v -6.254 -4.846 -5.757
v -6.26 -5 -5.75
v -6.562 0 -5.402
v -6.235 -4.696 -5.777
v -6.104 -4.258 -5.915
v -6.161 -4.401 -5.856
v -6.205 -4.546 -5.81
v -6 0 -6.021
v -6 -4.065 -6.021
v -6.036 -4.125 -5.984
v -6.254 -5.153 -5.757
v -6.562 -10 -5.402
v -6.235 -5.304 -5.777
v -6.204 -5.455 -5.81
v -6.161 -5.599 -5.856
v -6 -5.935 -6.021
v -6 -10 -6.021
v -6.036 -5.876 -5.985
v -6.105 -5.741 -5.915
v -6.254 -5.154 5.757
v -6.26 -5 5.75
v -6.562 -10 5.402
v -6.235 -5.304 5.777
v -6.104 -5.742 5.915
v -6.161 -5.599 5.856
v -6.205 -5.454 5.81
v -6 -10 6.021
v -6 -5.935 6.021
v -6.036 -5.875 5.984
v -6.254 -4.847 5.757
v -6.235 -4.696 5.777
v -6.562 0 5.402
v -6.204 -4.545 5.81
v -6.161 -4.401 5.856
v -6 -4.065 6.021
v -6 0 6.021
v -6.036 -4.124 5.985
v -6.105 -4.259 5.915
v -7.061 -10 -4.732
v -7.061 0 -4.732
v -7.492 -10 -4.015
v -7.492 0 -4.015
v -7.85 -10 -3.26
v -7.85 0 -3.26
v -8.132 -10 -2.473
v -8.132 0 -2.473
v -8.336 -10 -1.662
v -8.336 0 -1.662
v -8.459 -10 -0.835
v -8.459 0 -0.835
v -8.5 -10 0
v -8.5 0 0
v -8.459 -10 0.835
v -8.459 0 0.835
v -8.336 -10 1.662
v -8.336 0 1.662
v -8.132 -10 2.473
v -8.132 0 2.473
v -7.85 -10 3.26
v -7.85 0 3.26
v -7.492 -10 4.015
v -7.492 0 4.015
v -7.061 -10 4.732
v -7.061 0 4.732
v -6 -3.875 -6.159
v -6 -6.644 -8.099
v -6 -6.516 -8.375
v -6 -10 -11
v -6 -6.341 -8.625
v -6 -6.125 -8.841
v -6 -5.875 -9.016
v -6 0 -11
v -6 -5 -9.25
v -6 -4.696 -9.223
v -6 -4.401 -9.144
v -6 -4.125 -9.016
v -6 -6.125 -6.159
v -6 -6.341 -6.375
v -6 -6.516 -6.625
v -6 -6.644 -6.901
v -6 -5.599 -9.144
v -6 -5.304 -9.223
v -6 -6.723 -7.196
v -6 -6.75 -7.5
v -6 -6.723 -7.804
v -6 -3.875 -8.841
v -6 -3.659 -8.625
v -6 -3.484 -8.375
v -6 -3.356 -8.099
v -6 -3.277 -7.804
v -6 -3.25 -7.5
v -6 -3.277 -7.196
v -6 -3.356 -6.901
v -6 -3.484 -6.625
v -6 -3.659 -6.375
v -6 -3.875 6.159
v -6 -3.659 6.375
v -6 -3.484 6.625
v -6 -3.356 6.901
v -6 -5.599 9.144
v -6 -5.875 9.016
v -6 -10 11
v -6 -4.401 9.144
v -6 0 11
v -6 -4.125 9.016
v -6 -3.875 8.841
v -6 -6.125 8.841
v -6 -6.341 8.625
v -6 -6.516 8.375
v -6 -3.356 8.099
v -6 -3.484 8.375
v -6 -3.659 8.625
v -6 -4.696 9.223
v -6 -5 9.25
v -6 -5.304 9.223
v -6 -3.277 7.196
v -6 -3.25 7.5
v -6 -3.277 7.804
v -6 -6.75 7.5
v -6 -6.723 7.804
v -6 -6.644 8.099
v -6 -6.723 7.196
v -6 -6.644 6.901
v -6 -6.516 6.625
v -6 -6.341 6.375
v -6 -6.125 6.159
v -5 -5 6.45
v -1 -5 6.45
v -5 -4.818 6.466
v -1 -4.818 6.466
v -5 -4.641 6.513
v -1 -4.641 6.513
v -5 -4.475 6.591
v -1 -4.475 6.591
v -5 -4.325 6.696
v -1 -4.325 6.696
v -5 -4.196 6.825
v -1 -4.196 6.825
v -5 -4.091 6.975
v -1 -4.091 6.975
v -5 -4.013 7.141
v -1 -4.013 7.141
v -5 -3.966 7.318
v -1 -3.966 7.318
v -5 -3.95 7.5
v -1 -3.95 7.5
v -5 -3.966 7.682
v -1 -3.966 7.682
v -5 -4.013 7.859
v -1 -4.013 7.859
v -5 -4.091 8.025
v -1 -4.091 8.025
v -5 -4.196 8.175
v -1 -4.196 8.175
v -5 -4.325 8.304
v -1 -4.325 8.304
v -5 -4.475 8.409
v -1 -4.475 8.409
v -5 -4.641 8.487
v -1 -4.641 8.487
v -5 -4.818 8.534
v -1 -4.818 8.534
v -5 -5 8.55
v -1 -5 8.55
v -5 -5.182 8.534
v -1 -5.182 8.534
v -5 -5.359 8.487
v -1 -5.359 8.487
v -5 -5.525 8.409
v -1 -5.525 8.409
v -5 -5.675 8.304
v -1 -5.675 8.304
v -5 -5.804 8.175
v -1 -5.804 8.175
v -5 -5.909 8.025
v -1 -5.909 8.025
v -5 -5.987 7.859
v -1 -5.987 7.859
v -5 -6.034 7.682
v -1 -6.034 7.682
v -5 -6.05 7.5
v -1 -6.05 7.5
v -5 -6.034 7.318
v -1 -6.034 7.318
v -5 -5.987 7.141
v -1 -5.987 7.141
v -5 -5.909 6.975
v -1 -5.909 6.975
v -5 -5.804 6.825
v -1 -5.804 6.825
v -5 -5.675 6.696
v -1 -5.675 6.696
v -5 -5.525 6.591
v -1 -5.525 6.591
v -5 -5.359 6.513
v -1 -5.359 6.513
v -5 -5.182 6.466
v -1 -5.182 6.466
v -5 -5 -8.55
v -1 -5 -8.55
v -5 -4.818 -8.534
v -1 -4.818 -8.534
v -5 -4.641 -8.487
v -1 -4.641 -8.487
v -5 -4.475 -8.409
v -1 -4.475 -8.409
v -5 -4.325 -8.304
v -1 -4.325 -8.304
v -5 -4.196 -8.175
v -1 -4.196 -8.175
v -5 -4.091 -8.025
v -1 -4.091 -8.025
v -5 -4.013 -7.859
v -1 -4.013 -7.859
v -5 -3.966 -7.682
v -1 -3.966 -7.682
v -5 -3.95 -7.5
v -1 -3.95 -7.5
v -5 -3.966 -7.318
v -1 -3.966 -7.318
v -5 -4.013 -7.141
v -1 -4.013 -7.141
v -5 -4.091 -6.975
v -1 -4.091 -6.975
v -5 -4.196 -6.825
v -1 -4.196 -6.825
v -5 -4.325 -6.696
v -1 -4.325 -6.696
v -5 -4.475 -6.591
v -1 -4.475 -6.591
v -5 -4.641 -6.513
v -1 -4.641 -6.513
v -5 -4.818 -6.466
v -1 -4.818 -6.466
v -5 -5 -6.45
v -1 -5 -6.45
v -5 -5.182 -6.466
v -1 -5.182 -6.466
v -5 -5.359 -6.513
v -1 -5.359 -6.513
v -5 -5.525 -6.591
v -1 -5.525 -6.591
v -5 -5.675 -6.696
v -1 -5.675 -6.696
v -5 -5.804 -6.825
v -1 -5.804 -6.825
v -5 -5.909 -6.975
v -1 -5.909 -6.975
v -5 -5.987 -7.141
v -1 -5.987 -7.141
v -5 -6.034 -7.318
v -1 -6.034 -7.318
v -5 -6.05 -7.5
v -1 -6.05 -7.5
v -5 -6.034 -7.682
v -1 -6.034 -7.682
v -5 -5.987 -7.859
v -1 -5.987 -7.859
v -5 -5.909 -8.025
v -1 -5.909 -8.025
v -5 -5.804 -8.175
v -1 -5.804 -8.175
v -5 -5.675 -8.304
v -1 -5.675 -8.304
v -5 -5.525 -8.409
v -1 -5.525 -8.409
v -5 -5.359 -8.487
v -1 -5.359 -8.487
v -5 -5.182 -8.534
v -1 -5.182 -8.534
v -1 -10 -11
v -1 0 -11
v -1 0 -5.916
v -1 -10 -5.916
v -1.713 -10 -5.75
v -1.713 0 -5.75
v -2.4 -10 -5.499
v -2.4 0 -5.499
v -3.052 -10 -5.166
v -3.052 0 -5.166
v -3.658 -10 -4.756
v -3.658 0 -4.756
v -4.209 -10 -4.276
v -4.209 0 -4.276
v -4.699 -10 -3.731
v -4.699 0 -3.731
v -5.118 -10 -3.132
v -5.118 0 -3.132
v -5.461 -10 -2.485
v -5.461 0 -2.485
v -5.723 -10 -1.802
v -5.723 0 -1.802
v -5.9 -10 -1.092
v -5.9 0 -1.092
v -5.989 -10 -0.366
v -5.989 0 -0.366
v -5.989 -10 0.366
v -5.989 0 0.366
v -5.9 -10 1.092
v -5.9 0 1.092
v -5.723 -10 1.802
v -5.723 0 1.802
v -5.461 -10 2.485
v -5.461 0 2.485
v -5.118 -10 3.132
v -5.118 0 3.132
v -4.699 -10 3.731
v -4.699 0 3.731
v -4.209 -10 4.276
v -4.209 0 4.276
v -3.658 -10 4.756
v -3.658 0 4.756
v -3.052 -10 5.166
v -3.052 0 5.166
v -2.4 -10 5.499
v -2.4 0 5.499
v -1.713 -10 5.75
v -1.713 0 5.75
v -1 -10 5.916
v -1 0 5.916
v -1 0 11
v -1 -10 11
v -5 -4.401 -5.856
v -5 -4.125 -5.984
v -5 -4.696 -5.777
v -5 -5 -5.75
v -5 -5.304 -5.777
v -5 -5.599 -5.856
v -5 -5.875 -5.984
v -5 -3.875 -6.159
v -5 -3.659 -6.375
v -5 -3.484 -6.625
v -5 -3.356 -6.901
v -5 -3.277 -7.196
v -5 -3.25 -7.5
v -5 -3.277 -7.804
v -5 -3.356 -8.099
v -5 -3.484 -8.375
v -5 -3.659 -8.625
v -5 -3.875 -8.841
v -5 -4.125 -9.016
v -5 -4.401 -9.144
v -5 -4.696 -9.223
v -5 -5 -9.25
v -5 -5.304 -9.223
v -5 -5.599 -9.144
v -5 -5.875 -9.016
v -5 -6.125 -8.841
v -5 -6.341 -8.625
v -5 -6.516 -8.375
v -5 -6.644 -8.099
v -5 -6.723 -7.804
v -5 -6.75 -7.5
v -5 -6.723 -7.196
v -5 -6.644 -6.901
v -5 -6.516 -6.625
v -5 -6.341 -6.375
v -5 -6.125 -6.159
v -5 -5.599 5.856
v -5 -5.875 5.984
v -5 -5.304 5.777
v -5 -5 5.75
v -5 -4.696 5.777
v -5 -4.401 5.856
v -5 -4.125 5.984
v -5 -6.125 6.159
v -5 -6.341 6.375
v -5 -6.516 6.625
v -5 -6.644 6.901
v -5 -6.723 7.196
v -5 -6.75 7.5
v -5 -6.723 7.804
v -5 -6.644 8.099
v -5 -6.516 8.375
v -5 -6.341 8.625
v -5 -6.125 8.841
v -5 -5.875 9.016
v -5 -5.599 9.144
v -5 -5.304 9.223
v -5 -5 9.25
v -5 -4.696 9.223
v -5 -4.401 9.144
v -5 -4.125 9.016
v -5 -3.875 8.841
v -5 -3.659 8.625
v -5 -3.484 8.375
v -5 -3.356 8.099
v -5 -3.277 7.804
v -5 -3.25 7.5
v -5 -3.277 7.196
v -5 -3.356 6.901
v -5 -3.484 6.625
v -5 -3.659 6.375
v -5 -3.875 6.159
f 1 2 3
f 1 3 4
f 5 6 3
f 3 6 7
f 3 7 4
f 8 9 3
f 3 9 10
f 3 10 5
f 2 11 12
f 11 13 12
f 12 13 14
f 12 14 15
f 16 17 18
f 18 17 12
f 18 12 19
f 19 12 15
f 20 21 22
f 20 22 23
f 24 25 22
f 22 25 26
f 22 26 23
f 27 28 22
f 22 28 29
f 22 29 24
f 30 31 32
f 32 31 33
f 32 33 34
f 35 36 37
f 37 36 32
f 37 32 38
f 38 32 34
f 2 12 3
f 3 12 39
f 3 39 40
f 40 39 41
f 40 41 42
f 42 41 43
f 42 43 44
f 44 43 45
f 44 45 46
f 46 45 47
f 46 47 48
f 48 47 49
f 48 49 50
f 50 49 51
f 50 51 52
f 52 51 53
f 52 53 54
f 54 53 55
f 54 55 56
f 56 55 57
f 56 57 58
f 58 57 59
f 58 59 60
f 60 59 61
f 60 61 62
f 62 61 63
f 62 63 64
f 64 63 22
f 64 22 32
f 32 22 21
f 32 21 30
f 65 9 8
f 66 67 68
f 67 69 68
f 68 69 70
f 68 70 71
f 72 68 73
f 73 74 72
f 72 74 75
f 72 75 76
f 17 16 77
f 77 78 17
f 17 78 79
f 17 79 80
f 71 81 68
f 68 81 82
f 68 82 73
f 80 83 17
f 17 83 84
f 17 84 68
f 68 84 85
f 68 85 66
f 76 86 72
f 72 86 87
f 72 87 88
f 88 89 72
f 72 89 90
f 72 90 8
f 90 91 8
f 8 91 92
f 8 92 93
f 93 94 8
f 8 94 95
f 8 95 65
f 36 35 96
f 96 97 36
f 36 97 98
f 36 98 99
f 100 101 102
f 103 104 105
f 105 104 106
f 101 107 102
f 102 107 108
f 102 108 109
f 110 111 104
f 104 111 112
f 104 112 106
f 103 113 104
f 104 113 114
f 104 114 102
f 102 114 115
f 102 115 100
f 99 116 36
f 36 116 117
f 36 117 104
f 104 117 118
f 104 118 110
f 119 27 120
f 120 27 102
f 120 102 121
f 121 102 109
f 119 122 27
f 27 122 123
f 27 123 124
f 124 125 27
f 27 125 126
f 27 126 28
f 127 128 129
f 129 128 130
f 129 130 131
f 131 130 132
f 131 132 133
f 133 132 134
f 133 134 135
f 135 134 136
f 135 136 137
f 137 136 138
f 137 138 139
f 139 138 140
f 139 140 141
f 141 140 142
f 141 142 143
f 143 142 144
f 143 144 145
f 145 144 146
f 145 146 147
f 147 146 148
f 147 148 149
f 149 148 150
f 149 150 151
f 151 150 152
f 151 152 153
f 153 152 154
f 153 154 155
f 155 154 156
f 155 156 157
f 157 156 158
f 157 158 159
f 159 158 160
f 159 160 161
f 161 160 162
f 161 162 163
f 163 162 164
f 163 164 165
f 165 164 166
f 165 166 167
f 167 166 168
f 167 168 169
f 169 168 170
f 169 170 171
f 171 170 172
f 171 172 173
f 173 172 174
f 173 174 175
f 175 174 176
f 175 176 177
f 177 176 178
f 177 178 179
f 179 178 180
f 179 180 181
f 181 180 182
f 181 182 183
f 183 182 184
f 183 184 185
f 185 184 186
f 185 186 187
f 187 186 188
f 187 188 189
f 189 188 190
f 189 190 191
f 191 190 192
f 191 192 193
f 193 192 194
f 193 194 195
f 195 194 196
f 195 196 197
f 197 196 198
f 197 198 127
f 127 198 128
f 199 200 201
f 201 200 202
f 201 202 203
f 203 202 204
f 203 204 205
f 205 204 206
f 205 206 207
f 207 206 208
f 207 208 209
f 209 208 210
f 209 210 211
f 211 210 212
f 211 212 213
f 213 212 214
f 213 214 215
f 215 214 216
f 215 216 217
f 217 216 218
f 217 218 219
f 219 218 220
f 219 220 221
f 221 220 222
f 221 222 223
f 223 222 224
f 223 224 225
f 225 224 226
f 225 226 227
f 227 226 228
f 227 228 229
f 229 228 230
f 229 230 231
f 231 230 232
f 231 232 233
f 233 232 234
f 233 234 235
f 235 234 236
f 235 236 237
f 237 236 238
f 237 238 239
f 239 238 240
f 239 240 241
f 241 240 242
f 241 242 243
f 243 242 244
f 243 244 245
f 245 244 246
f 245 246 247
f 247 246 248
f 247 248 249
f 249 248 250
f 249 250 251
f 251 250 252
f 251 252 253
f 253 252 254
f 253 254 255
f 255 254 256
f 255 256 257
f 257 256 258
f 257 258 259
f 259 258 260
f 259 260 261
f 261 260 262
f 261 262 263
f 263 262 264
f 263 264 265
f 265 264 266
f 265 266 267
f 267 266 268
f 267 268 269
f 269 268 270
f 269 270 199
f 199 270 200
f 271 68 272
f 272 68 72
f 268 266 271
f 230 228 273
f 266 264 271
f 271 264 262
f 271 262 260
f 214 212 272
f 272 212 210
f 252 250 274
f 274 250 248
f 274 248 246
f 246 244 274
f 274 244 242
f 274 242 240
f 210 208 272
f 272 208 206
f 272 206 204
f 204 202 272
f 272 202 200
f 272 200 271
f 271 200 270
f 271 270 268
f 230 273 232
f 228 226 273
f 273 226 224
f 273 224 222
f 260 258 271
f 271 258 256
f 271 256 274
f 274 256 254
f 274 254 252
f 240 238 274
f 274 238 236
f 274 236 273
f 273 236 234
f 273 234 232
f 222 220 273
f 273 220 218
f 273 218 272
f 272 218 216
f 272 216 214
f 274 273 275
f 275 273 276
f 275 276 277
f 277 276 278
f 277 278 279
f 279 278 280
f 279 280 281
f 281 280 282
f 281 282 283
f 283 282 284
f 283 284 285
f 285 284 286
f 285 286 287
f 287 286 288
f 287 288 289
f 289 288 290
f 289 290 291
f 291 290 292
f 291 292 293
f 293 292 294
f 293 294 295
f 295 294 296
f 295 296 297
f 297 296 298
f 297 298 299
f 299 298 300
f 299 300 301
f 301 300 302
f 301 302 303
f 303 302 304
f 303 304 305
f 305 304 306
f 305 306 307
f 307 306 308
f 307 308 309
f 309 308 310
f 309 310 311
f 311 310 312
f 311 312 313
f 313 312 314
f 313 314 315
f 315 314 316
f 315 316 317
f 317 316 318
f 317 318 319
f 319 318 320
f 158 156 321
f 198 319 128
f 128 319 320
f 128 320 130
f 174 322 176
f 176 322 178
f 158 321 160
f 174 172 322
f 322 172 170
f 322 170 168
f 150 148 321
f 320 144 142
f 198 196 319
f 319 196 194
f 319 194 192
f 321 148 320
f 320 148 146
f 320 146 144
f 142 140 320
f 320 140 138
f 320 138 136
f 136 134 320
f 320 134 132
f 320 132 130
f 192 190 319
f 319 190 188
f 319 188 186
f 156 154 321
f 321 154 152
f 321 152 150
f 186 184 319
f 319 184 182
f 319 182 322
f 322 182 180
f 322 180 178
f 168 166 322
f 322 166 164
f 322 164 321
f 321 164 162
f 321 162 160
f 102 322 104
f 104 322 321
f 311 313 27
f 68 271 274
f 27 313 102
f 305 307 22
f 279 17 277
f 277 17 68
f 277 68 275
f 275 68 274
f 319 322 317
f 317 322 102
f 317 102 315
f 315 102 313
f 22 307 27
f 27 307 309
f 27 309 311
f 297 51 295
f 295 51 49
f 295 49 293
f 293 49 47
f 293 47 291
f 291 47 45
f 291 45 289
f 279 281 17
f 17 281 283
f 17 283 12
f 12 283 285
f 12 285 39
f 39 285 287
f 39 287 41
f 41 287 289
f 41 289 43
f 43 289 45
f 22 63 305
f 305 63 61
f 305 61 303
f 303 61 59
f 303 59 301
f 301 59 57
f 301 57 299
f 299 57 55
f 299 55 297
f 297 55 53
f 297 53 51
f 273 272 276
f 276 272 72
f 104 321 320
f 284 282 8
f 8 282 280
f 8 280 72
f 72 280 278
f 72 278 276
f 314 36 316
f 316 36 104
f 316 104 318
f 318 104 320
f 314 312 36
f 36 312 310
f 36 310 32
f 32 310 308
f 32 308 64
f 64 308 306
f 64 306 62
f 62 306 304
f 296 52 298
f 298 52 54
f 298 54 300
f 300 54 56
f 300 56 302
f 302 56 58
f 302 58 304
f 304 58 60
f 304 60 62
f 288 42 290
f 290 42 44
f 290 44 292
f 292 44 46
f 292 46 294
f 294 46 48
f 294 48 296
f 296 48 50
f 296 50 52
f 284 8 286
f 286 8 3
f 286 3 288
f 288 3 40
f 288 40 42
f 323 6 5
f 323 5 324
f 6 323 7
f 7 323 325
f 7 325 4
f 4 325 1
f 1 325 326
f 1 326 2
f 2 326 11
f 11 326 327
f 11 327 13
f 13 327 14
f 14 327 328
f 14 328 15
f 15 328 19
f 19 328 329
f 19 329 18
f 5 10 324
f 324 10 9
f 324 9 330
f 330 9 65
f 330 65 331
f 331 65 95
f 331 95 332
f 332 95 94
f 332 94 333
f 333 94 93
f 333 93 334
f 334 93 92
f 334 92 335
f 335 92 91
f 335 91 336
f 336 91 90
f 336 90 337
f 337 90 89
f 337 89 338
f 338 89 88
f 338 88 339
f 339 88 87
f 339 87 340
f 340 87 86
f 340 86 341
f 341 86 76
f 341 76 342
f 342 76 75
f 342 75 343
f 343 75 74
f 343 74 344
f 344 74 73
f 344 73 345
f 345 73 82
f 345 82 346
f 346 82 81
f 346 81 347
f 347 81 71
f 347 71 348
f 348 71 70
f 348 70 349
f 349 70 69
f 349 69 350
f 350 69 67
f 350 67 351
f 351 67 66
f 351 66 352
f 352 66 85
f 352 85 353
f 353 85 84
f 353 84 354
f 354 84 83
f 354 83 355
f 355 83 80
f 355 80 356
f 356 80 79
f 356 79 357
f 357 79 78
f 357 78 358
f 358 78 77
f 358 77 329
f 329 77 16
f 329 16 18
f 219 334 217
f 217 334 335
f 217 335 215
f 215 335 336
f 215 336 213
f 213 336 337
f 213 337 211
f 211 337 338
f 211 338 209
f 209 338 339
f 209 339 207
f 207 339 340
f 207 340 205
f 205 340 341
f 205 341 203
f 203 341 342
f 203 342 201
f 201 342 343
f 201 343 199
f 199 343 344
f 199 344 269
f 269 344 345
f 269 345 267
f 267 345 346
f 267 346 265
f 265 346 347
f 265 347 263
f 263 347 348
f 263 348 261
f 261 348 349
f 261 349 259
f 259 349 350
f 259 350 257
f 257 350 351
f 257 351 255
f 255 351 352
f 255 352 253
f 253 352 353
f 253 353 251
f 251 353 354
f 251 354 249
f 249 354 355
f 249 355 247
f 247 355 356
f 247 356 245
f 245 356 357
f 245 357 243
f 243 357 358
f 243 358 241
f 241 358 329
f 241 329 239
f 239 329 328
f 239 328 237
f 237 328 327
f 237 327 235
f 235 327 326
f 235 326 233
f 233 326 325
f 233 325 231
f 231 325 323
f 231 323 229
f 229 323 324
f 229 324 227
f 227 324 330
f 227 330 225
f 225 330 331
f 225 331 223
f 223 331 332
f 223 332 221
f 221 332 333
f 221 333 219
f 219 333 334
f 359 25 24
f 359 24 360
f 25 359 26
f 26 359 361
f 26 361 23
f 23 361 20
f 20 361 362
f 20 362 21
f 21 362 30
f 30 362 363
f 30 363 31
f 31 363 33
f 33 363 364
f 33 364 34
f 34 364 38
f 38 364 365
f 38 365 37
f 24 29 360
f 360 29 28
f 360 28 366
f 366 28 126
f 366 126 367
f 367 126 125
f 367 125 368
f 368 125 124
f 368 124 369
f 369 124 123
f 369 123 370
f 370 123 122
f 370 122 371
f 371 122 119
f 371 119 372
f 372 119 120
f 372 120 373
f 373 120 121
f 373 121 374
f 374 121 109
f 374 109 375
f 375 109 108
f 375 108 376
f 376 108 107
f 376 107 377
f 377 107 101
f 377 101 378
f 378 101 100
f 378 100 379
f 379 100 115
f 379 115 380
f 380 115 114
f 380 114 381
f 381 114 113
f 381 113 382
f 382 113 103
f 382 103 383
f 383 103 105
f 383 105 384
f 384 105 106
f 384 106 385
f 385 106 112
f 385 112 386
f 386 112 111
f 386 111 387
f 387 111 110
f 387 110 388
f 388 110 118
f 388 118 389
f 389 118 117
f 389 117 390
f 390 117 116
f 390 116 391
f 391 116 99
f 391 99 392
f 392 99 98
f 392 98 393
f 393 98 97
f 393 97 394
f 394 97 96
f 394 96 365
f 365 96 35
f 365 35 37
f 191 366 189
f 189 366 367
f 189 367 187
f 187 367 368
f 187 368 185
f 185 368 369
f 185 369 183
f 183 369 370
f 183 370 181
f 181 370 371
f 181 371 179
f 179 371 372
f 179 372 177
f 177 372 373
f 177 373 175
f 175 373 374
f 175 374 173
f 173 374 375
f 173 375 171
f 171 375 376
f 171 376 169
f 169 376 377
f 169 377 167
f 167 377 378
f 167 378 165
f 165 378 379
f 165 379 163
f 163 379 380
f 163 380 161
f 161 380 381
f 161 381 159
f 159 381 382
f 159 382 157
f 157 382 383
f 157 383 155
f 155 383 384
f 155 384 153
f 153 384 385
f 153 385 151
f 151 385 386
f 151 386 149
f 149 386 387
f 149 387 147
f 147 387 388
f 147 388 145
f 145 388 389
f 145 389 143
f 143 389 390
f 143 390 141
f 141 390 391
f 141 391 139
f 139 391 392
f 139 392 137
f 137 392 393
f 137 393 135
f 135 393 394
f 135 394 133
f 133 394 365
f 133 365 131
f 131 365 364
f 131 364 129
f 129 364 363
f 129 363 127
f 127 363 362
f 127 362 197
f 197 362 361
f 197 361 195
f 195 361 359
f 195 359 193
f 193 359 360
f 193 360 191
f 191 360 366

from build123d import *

# Parameters (mm, degrees)
BOSS_EXTRUDE1_DEPTH     = 10
CUT_EXTRUDE1_DEPTH      = 18.12454379
CUT_EXTRUDE1_DEPTH_BACK = 18.12454379
SKETCH2_R               = 1.05
CUT_EXTRUDE2_DEPTH      = 1
CUT_EXTRUDE2_DEPTH_BACK = 10
CUT_EXTRUDE2_START      = -6
SKETCH2_3_R             = 1.75
SKETCH2_3_R_2           = 1.05


with BuildPart() as part:
    # Sketch1 → Boss-Extrude1 (new body)
    with BuildSketch(Plane(origin=(0, 0, 0), x_dir=(1, 0, 0), z_dir=(0, 1, 0))):
        with BuildLine():
            Line((-6, -2.1e-08), (-6, 6.020797289))
            ThreePointArc((-6, 6.020797289), (-8.5, 0), (-6, -6.020797289))
            Line((-6, -6.020797289), (-6, -2.1e-08))
        make_face()
        with BuildLine():
            ThreePointArc((-1, 8.440971508), (-3.703283788, 7.65086199), (-6, 6.020797289))
            Line((-6, 6.020797289), (-6, -2.1e-08))
            ThreePointArc((-6, -2.1e-08), (-4.582575702, 3.872983338), (-1, 5.916079783))
            Line((-1, 5.916079783), (-1, 8.440971508))
        make_face()
        with BuildLine():
            ThreePointArc((-1, -5.916079783), (-4.582575688, -3.872983354), (-6, -2.1e-08))
            Line((-6, -2.1e-08), (-6, -6.020797289))
            ThreePointArc((-6, -6.020797289), (-3.703283788, -7.65086199), (-1, -8.440971508))
            Line((-1, -8.440971508), (-1, -5.916079783))
        make_face()
        with BuildLine():
            ThreePointArc((-1, -8.440971508), (-3.703283788, -7.65086199), (-6, -6.020797289))
            Line((-6, -6.020797289), (-6, -11))
            Line((-6, -11), (-1, -11))
            Line((-1, -11), (-1, -8.440971508))
        make_face()
        with BuildLine():
            Line((-1, 11), (-6, 11))
            Line((-6, 11), (-6, 6.020797289))
            ThreePointArc((-6, 6.020797289), (-3.703283788, 7.65086199), (-1, 8.440971508))
            Line((-1, 8.440971508), (-1, 11))
        make_face()
    extrude(amount=-BOSS_EXTRUDE1_DEPTH)

    # Sketch2 → Cut-Extrude1 (cut, two sides: drawn at the far end of the back side and taken through both)
    with BuildSketch(Plane(origin=(0, 0, 0), x_dir=(0, 0, -1), z_dir=(1, 0, 0)).offset(-CUT_EXTRUDE1_DEPTH_BACK)):
        with Locations(Location((-7.5, -5, 0), (0, 0, 180))):
            Circle(SKETCH2_R)
        with Locations(Location((7.5, -5, 0), (0, 0, 180))):
            Circle(SKETCH2_R)
    extrude(amount=CUT_EXTRUDE1_DEPTH + CUT_EXTRUDE1_DEPTH_BACK, mode=Mode.SUBTRACT)

    # Sketch2<3> → Cut-Extrude2 (cut, two sides: drawn at the far end of the back side and taken through both)
    # profile 1 of 2: a face of its own
    with BuildSketch(Plane(origin=(0, 0, 0), x_dir=(0, 0, -1), z_dir=(1, 0, 0)).offset(CUT_EXTRUDE2_START - CUT_EXTRUDE2_DEPTH_BACK)):
        with Locations(Location((-7.5, -5, 0), (0, 0, 327.699663161))):
            Circle(SKETCH2_3_R)
        with Locations(Location((-7.5, -5, 0), (0, 0, 180))):
            Circle(SKETCH2_3_R_2, mode=Mode.SUBTRACT)
    # profile 2 of 2: a face of its own
    with BuildSketch(Plane(origin=(0, 0, 0), x_dir=(0, 0, -1), z_dir=(1, 0, 0)).offset(CUT_EXTRUDE2_START - CUT_EXTRUDE2_DEPTH_BACK)):
        with Locations(Location((7.5, -5, 0), (0, 0, 212.300336839))):
            Circle(SKETCH2_3_R)
        with Locations(Location((7.5, -5, 0), (0, 0, 180))):
            Circle(SKETCH2_3_R_2, mode=Mode.SUBTRACT)
    extrude(amount=CUT_EXTRUDE2_DEPTH + CUT_EXTRUDE2_DEPTH_BACK, mode=Mode.SUBTRACT)


solid = part.part
